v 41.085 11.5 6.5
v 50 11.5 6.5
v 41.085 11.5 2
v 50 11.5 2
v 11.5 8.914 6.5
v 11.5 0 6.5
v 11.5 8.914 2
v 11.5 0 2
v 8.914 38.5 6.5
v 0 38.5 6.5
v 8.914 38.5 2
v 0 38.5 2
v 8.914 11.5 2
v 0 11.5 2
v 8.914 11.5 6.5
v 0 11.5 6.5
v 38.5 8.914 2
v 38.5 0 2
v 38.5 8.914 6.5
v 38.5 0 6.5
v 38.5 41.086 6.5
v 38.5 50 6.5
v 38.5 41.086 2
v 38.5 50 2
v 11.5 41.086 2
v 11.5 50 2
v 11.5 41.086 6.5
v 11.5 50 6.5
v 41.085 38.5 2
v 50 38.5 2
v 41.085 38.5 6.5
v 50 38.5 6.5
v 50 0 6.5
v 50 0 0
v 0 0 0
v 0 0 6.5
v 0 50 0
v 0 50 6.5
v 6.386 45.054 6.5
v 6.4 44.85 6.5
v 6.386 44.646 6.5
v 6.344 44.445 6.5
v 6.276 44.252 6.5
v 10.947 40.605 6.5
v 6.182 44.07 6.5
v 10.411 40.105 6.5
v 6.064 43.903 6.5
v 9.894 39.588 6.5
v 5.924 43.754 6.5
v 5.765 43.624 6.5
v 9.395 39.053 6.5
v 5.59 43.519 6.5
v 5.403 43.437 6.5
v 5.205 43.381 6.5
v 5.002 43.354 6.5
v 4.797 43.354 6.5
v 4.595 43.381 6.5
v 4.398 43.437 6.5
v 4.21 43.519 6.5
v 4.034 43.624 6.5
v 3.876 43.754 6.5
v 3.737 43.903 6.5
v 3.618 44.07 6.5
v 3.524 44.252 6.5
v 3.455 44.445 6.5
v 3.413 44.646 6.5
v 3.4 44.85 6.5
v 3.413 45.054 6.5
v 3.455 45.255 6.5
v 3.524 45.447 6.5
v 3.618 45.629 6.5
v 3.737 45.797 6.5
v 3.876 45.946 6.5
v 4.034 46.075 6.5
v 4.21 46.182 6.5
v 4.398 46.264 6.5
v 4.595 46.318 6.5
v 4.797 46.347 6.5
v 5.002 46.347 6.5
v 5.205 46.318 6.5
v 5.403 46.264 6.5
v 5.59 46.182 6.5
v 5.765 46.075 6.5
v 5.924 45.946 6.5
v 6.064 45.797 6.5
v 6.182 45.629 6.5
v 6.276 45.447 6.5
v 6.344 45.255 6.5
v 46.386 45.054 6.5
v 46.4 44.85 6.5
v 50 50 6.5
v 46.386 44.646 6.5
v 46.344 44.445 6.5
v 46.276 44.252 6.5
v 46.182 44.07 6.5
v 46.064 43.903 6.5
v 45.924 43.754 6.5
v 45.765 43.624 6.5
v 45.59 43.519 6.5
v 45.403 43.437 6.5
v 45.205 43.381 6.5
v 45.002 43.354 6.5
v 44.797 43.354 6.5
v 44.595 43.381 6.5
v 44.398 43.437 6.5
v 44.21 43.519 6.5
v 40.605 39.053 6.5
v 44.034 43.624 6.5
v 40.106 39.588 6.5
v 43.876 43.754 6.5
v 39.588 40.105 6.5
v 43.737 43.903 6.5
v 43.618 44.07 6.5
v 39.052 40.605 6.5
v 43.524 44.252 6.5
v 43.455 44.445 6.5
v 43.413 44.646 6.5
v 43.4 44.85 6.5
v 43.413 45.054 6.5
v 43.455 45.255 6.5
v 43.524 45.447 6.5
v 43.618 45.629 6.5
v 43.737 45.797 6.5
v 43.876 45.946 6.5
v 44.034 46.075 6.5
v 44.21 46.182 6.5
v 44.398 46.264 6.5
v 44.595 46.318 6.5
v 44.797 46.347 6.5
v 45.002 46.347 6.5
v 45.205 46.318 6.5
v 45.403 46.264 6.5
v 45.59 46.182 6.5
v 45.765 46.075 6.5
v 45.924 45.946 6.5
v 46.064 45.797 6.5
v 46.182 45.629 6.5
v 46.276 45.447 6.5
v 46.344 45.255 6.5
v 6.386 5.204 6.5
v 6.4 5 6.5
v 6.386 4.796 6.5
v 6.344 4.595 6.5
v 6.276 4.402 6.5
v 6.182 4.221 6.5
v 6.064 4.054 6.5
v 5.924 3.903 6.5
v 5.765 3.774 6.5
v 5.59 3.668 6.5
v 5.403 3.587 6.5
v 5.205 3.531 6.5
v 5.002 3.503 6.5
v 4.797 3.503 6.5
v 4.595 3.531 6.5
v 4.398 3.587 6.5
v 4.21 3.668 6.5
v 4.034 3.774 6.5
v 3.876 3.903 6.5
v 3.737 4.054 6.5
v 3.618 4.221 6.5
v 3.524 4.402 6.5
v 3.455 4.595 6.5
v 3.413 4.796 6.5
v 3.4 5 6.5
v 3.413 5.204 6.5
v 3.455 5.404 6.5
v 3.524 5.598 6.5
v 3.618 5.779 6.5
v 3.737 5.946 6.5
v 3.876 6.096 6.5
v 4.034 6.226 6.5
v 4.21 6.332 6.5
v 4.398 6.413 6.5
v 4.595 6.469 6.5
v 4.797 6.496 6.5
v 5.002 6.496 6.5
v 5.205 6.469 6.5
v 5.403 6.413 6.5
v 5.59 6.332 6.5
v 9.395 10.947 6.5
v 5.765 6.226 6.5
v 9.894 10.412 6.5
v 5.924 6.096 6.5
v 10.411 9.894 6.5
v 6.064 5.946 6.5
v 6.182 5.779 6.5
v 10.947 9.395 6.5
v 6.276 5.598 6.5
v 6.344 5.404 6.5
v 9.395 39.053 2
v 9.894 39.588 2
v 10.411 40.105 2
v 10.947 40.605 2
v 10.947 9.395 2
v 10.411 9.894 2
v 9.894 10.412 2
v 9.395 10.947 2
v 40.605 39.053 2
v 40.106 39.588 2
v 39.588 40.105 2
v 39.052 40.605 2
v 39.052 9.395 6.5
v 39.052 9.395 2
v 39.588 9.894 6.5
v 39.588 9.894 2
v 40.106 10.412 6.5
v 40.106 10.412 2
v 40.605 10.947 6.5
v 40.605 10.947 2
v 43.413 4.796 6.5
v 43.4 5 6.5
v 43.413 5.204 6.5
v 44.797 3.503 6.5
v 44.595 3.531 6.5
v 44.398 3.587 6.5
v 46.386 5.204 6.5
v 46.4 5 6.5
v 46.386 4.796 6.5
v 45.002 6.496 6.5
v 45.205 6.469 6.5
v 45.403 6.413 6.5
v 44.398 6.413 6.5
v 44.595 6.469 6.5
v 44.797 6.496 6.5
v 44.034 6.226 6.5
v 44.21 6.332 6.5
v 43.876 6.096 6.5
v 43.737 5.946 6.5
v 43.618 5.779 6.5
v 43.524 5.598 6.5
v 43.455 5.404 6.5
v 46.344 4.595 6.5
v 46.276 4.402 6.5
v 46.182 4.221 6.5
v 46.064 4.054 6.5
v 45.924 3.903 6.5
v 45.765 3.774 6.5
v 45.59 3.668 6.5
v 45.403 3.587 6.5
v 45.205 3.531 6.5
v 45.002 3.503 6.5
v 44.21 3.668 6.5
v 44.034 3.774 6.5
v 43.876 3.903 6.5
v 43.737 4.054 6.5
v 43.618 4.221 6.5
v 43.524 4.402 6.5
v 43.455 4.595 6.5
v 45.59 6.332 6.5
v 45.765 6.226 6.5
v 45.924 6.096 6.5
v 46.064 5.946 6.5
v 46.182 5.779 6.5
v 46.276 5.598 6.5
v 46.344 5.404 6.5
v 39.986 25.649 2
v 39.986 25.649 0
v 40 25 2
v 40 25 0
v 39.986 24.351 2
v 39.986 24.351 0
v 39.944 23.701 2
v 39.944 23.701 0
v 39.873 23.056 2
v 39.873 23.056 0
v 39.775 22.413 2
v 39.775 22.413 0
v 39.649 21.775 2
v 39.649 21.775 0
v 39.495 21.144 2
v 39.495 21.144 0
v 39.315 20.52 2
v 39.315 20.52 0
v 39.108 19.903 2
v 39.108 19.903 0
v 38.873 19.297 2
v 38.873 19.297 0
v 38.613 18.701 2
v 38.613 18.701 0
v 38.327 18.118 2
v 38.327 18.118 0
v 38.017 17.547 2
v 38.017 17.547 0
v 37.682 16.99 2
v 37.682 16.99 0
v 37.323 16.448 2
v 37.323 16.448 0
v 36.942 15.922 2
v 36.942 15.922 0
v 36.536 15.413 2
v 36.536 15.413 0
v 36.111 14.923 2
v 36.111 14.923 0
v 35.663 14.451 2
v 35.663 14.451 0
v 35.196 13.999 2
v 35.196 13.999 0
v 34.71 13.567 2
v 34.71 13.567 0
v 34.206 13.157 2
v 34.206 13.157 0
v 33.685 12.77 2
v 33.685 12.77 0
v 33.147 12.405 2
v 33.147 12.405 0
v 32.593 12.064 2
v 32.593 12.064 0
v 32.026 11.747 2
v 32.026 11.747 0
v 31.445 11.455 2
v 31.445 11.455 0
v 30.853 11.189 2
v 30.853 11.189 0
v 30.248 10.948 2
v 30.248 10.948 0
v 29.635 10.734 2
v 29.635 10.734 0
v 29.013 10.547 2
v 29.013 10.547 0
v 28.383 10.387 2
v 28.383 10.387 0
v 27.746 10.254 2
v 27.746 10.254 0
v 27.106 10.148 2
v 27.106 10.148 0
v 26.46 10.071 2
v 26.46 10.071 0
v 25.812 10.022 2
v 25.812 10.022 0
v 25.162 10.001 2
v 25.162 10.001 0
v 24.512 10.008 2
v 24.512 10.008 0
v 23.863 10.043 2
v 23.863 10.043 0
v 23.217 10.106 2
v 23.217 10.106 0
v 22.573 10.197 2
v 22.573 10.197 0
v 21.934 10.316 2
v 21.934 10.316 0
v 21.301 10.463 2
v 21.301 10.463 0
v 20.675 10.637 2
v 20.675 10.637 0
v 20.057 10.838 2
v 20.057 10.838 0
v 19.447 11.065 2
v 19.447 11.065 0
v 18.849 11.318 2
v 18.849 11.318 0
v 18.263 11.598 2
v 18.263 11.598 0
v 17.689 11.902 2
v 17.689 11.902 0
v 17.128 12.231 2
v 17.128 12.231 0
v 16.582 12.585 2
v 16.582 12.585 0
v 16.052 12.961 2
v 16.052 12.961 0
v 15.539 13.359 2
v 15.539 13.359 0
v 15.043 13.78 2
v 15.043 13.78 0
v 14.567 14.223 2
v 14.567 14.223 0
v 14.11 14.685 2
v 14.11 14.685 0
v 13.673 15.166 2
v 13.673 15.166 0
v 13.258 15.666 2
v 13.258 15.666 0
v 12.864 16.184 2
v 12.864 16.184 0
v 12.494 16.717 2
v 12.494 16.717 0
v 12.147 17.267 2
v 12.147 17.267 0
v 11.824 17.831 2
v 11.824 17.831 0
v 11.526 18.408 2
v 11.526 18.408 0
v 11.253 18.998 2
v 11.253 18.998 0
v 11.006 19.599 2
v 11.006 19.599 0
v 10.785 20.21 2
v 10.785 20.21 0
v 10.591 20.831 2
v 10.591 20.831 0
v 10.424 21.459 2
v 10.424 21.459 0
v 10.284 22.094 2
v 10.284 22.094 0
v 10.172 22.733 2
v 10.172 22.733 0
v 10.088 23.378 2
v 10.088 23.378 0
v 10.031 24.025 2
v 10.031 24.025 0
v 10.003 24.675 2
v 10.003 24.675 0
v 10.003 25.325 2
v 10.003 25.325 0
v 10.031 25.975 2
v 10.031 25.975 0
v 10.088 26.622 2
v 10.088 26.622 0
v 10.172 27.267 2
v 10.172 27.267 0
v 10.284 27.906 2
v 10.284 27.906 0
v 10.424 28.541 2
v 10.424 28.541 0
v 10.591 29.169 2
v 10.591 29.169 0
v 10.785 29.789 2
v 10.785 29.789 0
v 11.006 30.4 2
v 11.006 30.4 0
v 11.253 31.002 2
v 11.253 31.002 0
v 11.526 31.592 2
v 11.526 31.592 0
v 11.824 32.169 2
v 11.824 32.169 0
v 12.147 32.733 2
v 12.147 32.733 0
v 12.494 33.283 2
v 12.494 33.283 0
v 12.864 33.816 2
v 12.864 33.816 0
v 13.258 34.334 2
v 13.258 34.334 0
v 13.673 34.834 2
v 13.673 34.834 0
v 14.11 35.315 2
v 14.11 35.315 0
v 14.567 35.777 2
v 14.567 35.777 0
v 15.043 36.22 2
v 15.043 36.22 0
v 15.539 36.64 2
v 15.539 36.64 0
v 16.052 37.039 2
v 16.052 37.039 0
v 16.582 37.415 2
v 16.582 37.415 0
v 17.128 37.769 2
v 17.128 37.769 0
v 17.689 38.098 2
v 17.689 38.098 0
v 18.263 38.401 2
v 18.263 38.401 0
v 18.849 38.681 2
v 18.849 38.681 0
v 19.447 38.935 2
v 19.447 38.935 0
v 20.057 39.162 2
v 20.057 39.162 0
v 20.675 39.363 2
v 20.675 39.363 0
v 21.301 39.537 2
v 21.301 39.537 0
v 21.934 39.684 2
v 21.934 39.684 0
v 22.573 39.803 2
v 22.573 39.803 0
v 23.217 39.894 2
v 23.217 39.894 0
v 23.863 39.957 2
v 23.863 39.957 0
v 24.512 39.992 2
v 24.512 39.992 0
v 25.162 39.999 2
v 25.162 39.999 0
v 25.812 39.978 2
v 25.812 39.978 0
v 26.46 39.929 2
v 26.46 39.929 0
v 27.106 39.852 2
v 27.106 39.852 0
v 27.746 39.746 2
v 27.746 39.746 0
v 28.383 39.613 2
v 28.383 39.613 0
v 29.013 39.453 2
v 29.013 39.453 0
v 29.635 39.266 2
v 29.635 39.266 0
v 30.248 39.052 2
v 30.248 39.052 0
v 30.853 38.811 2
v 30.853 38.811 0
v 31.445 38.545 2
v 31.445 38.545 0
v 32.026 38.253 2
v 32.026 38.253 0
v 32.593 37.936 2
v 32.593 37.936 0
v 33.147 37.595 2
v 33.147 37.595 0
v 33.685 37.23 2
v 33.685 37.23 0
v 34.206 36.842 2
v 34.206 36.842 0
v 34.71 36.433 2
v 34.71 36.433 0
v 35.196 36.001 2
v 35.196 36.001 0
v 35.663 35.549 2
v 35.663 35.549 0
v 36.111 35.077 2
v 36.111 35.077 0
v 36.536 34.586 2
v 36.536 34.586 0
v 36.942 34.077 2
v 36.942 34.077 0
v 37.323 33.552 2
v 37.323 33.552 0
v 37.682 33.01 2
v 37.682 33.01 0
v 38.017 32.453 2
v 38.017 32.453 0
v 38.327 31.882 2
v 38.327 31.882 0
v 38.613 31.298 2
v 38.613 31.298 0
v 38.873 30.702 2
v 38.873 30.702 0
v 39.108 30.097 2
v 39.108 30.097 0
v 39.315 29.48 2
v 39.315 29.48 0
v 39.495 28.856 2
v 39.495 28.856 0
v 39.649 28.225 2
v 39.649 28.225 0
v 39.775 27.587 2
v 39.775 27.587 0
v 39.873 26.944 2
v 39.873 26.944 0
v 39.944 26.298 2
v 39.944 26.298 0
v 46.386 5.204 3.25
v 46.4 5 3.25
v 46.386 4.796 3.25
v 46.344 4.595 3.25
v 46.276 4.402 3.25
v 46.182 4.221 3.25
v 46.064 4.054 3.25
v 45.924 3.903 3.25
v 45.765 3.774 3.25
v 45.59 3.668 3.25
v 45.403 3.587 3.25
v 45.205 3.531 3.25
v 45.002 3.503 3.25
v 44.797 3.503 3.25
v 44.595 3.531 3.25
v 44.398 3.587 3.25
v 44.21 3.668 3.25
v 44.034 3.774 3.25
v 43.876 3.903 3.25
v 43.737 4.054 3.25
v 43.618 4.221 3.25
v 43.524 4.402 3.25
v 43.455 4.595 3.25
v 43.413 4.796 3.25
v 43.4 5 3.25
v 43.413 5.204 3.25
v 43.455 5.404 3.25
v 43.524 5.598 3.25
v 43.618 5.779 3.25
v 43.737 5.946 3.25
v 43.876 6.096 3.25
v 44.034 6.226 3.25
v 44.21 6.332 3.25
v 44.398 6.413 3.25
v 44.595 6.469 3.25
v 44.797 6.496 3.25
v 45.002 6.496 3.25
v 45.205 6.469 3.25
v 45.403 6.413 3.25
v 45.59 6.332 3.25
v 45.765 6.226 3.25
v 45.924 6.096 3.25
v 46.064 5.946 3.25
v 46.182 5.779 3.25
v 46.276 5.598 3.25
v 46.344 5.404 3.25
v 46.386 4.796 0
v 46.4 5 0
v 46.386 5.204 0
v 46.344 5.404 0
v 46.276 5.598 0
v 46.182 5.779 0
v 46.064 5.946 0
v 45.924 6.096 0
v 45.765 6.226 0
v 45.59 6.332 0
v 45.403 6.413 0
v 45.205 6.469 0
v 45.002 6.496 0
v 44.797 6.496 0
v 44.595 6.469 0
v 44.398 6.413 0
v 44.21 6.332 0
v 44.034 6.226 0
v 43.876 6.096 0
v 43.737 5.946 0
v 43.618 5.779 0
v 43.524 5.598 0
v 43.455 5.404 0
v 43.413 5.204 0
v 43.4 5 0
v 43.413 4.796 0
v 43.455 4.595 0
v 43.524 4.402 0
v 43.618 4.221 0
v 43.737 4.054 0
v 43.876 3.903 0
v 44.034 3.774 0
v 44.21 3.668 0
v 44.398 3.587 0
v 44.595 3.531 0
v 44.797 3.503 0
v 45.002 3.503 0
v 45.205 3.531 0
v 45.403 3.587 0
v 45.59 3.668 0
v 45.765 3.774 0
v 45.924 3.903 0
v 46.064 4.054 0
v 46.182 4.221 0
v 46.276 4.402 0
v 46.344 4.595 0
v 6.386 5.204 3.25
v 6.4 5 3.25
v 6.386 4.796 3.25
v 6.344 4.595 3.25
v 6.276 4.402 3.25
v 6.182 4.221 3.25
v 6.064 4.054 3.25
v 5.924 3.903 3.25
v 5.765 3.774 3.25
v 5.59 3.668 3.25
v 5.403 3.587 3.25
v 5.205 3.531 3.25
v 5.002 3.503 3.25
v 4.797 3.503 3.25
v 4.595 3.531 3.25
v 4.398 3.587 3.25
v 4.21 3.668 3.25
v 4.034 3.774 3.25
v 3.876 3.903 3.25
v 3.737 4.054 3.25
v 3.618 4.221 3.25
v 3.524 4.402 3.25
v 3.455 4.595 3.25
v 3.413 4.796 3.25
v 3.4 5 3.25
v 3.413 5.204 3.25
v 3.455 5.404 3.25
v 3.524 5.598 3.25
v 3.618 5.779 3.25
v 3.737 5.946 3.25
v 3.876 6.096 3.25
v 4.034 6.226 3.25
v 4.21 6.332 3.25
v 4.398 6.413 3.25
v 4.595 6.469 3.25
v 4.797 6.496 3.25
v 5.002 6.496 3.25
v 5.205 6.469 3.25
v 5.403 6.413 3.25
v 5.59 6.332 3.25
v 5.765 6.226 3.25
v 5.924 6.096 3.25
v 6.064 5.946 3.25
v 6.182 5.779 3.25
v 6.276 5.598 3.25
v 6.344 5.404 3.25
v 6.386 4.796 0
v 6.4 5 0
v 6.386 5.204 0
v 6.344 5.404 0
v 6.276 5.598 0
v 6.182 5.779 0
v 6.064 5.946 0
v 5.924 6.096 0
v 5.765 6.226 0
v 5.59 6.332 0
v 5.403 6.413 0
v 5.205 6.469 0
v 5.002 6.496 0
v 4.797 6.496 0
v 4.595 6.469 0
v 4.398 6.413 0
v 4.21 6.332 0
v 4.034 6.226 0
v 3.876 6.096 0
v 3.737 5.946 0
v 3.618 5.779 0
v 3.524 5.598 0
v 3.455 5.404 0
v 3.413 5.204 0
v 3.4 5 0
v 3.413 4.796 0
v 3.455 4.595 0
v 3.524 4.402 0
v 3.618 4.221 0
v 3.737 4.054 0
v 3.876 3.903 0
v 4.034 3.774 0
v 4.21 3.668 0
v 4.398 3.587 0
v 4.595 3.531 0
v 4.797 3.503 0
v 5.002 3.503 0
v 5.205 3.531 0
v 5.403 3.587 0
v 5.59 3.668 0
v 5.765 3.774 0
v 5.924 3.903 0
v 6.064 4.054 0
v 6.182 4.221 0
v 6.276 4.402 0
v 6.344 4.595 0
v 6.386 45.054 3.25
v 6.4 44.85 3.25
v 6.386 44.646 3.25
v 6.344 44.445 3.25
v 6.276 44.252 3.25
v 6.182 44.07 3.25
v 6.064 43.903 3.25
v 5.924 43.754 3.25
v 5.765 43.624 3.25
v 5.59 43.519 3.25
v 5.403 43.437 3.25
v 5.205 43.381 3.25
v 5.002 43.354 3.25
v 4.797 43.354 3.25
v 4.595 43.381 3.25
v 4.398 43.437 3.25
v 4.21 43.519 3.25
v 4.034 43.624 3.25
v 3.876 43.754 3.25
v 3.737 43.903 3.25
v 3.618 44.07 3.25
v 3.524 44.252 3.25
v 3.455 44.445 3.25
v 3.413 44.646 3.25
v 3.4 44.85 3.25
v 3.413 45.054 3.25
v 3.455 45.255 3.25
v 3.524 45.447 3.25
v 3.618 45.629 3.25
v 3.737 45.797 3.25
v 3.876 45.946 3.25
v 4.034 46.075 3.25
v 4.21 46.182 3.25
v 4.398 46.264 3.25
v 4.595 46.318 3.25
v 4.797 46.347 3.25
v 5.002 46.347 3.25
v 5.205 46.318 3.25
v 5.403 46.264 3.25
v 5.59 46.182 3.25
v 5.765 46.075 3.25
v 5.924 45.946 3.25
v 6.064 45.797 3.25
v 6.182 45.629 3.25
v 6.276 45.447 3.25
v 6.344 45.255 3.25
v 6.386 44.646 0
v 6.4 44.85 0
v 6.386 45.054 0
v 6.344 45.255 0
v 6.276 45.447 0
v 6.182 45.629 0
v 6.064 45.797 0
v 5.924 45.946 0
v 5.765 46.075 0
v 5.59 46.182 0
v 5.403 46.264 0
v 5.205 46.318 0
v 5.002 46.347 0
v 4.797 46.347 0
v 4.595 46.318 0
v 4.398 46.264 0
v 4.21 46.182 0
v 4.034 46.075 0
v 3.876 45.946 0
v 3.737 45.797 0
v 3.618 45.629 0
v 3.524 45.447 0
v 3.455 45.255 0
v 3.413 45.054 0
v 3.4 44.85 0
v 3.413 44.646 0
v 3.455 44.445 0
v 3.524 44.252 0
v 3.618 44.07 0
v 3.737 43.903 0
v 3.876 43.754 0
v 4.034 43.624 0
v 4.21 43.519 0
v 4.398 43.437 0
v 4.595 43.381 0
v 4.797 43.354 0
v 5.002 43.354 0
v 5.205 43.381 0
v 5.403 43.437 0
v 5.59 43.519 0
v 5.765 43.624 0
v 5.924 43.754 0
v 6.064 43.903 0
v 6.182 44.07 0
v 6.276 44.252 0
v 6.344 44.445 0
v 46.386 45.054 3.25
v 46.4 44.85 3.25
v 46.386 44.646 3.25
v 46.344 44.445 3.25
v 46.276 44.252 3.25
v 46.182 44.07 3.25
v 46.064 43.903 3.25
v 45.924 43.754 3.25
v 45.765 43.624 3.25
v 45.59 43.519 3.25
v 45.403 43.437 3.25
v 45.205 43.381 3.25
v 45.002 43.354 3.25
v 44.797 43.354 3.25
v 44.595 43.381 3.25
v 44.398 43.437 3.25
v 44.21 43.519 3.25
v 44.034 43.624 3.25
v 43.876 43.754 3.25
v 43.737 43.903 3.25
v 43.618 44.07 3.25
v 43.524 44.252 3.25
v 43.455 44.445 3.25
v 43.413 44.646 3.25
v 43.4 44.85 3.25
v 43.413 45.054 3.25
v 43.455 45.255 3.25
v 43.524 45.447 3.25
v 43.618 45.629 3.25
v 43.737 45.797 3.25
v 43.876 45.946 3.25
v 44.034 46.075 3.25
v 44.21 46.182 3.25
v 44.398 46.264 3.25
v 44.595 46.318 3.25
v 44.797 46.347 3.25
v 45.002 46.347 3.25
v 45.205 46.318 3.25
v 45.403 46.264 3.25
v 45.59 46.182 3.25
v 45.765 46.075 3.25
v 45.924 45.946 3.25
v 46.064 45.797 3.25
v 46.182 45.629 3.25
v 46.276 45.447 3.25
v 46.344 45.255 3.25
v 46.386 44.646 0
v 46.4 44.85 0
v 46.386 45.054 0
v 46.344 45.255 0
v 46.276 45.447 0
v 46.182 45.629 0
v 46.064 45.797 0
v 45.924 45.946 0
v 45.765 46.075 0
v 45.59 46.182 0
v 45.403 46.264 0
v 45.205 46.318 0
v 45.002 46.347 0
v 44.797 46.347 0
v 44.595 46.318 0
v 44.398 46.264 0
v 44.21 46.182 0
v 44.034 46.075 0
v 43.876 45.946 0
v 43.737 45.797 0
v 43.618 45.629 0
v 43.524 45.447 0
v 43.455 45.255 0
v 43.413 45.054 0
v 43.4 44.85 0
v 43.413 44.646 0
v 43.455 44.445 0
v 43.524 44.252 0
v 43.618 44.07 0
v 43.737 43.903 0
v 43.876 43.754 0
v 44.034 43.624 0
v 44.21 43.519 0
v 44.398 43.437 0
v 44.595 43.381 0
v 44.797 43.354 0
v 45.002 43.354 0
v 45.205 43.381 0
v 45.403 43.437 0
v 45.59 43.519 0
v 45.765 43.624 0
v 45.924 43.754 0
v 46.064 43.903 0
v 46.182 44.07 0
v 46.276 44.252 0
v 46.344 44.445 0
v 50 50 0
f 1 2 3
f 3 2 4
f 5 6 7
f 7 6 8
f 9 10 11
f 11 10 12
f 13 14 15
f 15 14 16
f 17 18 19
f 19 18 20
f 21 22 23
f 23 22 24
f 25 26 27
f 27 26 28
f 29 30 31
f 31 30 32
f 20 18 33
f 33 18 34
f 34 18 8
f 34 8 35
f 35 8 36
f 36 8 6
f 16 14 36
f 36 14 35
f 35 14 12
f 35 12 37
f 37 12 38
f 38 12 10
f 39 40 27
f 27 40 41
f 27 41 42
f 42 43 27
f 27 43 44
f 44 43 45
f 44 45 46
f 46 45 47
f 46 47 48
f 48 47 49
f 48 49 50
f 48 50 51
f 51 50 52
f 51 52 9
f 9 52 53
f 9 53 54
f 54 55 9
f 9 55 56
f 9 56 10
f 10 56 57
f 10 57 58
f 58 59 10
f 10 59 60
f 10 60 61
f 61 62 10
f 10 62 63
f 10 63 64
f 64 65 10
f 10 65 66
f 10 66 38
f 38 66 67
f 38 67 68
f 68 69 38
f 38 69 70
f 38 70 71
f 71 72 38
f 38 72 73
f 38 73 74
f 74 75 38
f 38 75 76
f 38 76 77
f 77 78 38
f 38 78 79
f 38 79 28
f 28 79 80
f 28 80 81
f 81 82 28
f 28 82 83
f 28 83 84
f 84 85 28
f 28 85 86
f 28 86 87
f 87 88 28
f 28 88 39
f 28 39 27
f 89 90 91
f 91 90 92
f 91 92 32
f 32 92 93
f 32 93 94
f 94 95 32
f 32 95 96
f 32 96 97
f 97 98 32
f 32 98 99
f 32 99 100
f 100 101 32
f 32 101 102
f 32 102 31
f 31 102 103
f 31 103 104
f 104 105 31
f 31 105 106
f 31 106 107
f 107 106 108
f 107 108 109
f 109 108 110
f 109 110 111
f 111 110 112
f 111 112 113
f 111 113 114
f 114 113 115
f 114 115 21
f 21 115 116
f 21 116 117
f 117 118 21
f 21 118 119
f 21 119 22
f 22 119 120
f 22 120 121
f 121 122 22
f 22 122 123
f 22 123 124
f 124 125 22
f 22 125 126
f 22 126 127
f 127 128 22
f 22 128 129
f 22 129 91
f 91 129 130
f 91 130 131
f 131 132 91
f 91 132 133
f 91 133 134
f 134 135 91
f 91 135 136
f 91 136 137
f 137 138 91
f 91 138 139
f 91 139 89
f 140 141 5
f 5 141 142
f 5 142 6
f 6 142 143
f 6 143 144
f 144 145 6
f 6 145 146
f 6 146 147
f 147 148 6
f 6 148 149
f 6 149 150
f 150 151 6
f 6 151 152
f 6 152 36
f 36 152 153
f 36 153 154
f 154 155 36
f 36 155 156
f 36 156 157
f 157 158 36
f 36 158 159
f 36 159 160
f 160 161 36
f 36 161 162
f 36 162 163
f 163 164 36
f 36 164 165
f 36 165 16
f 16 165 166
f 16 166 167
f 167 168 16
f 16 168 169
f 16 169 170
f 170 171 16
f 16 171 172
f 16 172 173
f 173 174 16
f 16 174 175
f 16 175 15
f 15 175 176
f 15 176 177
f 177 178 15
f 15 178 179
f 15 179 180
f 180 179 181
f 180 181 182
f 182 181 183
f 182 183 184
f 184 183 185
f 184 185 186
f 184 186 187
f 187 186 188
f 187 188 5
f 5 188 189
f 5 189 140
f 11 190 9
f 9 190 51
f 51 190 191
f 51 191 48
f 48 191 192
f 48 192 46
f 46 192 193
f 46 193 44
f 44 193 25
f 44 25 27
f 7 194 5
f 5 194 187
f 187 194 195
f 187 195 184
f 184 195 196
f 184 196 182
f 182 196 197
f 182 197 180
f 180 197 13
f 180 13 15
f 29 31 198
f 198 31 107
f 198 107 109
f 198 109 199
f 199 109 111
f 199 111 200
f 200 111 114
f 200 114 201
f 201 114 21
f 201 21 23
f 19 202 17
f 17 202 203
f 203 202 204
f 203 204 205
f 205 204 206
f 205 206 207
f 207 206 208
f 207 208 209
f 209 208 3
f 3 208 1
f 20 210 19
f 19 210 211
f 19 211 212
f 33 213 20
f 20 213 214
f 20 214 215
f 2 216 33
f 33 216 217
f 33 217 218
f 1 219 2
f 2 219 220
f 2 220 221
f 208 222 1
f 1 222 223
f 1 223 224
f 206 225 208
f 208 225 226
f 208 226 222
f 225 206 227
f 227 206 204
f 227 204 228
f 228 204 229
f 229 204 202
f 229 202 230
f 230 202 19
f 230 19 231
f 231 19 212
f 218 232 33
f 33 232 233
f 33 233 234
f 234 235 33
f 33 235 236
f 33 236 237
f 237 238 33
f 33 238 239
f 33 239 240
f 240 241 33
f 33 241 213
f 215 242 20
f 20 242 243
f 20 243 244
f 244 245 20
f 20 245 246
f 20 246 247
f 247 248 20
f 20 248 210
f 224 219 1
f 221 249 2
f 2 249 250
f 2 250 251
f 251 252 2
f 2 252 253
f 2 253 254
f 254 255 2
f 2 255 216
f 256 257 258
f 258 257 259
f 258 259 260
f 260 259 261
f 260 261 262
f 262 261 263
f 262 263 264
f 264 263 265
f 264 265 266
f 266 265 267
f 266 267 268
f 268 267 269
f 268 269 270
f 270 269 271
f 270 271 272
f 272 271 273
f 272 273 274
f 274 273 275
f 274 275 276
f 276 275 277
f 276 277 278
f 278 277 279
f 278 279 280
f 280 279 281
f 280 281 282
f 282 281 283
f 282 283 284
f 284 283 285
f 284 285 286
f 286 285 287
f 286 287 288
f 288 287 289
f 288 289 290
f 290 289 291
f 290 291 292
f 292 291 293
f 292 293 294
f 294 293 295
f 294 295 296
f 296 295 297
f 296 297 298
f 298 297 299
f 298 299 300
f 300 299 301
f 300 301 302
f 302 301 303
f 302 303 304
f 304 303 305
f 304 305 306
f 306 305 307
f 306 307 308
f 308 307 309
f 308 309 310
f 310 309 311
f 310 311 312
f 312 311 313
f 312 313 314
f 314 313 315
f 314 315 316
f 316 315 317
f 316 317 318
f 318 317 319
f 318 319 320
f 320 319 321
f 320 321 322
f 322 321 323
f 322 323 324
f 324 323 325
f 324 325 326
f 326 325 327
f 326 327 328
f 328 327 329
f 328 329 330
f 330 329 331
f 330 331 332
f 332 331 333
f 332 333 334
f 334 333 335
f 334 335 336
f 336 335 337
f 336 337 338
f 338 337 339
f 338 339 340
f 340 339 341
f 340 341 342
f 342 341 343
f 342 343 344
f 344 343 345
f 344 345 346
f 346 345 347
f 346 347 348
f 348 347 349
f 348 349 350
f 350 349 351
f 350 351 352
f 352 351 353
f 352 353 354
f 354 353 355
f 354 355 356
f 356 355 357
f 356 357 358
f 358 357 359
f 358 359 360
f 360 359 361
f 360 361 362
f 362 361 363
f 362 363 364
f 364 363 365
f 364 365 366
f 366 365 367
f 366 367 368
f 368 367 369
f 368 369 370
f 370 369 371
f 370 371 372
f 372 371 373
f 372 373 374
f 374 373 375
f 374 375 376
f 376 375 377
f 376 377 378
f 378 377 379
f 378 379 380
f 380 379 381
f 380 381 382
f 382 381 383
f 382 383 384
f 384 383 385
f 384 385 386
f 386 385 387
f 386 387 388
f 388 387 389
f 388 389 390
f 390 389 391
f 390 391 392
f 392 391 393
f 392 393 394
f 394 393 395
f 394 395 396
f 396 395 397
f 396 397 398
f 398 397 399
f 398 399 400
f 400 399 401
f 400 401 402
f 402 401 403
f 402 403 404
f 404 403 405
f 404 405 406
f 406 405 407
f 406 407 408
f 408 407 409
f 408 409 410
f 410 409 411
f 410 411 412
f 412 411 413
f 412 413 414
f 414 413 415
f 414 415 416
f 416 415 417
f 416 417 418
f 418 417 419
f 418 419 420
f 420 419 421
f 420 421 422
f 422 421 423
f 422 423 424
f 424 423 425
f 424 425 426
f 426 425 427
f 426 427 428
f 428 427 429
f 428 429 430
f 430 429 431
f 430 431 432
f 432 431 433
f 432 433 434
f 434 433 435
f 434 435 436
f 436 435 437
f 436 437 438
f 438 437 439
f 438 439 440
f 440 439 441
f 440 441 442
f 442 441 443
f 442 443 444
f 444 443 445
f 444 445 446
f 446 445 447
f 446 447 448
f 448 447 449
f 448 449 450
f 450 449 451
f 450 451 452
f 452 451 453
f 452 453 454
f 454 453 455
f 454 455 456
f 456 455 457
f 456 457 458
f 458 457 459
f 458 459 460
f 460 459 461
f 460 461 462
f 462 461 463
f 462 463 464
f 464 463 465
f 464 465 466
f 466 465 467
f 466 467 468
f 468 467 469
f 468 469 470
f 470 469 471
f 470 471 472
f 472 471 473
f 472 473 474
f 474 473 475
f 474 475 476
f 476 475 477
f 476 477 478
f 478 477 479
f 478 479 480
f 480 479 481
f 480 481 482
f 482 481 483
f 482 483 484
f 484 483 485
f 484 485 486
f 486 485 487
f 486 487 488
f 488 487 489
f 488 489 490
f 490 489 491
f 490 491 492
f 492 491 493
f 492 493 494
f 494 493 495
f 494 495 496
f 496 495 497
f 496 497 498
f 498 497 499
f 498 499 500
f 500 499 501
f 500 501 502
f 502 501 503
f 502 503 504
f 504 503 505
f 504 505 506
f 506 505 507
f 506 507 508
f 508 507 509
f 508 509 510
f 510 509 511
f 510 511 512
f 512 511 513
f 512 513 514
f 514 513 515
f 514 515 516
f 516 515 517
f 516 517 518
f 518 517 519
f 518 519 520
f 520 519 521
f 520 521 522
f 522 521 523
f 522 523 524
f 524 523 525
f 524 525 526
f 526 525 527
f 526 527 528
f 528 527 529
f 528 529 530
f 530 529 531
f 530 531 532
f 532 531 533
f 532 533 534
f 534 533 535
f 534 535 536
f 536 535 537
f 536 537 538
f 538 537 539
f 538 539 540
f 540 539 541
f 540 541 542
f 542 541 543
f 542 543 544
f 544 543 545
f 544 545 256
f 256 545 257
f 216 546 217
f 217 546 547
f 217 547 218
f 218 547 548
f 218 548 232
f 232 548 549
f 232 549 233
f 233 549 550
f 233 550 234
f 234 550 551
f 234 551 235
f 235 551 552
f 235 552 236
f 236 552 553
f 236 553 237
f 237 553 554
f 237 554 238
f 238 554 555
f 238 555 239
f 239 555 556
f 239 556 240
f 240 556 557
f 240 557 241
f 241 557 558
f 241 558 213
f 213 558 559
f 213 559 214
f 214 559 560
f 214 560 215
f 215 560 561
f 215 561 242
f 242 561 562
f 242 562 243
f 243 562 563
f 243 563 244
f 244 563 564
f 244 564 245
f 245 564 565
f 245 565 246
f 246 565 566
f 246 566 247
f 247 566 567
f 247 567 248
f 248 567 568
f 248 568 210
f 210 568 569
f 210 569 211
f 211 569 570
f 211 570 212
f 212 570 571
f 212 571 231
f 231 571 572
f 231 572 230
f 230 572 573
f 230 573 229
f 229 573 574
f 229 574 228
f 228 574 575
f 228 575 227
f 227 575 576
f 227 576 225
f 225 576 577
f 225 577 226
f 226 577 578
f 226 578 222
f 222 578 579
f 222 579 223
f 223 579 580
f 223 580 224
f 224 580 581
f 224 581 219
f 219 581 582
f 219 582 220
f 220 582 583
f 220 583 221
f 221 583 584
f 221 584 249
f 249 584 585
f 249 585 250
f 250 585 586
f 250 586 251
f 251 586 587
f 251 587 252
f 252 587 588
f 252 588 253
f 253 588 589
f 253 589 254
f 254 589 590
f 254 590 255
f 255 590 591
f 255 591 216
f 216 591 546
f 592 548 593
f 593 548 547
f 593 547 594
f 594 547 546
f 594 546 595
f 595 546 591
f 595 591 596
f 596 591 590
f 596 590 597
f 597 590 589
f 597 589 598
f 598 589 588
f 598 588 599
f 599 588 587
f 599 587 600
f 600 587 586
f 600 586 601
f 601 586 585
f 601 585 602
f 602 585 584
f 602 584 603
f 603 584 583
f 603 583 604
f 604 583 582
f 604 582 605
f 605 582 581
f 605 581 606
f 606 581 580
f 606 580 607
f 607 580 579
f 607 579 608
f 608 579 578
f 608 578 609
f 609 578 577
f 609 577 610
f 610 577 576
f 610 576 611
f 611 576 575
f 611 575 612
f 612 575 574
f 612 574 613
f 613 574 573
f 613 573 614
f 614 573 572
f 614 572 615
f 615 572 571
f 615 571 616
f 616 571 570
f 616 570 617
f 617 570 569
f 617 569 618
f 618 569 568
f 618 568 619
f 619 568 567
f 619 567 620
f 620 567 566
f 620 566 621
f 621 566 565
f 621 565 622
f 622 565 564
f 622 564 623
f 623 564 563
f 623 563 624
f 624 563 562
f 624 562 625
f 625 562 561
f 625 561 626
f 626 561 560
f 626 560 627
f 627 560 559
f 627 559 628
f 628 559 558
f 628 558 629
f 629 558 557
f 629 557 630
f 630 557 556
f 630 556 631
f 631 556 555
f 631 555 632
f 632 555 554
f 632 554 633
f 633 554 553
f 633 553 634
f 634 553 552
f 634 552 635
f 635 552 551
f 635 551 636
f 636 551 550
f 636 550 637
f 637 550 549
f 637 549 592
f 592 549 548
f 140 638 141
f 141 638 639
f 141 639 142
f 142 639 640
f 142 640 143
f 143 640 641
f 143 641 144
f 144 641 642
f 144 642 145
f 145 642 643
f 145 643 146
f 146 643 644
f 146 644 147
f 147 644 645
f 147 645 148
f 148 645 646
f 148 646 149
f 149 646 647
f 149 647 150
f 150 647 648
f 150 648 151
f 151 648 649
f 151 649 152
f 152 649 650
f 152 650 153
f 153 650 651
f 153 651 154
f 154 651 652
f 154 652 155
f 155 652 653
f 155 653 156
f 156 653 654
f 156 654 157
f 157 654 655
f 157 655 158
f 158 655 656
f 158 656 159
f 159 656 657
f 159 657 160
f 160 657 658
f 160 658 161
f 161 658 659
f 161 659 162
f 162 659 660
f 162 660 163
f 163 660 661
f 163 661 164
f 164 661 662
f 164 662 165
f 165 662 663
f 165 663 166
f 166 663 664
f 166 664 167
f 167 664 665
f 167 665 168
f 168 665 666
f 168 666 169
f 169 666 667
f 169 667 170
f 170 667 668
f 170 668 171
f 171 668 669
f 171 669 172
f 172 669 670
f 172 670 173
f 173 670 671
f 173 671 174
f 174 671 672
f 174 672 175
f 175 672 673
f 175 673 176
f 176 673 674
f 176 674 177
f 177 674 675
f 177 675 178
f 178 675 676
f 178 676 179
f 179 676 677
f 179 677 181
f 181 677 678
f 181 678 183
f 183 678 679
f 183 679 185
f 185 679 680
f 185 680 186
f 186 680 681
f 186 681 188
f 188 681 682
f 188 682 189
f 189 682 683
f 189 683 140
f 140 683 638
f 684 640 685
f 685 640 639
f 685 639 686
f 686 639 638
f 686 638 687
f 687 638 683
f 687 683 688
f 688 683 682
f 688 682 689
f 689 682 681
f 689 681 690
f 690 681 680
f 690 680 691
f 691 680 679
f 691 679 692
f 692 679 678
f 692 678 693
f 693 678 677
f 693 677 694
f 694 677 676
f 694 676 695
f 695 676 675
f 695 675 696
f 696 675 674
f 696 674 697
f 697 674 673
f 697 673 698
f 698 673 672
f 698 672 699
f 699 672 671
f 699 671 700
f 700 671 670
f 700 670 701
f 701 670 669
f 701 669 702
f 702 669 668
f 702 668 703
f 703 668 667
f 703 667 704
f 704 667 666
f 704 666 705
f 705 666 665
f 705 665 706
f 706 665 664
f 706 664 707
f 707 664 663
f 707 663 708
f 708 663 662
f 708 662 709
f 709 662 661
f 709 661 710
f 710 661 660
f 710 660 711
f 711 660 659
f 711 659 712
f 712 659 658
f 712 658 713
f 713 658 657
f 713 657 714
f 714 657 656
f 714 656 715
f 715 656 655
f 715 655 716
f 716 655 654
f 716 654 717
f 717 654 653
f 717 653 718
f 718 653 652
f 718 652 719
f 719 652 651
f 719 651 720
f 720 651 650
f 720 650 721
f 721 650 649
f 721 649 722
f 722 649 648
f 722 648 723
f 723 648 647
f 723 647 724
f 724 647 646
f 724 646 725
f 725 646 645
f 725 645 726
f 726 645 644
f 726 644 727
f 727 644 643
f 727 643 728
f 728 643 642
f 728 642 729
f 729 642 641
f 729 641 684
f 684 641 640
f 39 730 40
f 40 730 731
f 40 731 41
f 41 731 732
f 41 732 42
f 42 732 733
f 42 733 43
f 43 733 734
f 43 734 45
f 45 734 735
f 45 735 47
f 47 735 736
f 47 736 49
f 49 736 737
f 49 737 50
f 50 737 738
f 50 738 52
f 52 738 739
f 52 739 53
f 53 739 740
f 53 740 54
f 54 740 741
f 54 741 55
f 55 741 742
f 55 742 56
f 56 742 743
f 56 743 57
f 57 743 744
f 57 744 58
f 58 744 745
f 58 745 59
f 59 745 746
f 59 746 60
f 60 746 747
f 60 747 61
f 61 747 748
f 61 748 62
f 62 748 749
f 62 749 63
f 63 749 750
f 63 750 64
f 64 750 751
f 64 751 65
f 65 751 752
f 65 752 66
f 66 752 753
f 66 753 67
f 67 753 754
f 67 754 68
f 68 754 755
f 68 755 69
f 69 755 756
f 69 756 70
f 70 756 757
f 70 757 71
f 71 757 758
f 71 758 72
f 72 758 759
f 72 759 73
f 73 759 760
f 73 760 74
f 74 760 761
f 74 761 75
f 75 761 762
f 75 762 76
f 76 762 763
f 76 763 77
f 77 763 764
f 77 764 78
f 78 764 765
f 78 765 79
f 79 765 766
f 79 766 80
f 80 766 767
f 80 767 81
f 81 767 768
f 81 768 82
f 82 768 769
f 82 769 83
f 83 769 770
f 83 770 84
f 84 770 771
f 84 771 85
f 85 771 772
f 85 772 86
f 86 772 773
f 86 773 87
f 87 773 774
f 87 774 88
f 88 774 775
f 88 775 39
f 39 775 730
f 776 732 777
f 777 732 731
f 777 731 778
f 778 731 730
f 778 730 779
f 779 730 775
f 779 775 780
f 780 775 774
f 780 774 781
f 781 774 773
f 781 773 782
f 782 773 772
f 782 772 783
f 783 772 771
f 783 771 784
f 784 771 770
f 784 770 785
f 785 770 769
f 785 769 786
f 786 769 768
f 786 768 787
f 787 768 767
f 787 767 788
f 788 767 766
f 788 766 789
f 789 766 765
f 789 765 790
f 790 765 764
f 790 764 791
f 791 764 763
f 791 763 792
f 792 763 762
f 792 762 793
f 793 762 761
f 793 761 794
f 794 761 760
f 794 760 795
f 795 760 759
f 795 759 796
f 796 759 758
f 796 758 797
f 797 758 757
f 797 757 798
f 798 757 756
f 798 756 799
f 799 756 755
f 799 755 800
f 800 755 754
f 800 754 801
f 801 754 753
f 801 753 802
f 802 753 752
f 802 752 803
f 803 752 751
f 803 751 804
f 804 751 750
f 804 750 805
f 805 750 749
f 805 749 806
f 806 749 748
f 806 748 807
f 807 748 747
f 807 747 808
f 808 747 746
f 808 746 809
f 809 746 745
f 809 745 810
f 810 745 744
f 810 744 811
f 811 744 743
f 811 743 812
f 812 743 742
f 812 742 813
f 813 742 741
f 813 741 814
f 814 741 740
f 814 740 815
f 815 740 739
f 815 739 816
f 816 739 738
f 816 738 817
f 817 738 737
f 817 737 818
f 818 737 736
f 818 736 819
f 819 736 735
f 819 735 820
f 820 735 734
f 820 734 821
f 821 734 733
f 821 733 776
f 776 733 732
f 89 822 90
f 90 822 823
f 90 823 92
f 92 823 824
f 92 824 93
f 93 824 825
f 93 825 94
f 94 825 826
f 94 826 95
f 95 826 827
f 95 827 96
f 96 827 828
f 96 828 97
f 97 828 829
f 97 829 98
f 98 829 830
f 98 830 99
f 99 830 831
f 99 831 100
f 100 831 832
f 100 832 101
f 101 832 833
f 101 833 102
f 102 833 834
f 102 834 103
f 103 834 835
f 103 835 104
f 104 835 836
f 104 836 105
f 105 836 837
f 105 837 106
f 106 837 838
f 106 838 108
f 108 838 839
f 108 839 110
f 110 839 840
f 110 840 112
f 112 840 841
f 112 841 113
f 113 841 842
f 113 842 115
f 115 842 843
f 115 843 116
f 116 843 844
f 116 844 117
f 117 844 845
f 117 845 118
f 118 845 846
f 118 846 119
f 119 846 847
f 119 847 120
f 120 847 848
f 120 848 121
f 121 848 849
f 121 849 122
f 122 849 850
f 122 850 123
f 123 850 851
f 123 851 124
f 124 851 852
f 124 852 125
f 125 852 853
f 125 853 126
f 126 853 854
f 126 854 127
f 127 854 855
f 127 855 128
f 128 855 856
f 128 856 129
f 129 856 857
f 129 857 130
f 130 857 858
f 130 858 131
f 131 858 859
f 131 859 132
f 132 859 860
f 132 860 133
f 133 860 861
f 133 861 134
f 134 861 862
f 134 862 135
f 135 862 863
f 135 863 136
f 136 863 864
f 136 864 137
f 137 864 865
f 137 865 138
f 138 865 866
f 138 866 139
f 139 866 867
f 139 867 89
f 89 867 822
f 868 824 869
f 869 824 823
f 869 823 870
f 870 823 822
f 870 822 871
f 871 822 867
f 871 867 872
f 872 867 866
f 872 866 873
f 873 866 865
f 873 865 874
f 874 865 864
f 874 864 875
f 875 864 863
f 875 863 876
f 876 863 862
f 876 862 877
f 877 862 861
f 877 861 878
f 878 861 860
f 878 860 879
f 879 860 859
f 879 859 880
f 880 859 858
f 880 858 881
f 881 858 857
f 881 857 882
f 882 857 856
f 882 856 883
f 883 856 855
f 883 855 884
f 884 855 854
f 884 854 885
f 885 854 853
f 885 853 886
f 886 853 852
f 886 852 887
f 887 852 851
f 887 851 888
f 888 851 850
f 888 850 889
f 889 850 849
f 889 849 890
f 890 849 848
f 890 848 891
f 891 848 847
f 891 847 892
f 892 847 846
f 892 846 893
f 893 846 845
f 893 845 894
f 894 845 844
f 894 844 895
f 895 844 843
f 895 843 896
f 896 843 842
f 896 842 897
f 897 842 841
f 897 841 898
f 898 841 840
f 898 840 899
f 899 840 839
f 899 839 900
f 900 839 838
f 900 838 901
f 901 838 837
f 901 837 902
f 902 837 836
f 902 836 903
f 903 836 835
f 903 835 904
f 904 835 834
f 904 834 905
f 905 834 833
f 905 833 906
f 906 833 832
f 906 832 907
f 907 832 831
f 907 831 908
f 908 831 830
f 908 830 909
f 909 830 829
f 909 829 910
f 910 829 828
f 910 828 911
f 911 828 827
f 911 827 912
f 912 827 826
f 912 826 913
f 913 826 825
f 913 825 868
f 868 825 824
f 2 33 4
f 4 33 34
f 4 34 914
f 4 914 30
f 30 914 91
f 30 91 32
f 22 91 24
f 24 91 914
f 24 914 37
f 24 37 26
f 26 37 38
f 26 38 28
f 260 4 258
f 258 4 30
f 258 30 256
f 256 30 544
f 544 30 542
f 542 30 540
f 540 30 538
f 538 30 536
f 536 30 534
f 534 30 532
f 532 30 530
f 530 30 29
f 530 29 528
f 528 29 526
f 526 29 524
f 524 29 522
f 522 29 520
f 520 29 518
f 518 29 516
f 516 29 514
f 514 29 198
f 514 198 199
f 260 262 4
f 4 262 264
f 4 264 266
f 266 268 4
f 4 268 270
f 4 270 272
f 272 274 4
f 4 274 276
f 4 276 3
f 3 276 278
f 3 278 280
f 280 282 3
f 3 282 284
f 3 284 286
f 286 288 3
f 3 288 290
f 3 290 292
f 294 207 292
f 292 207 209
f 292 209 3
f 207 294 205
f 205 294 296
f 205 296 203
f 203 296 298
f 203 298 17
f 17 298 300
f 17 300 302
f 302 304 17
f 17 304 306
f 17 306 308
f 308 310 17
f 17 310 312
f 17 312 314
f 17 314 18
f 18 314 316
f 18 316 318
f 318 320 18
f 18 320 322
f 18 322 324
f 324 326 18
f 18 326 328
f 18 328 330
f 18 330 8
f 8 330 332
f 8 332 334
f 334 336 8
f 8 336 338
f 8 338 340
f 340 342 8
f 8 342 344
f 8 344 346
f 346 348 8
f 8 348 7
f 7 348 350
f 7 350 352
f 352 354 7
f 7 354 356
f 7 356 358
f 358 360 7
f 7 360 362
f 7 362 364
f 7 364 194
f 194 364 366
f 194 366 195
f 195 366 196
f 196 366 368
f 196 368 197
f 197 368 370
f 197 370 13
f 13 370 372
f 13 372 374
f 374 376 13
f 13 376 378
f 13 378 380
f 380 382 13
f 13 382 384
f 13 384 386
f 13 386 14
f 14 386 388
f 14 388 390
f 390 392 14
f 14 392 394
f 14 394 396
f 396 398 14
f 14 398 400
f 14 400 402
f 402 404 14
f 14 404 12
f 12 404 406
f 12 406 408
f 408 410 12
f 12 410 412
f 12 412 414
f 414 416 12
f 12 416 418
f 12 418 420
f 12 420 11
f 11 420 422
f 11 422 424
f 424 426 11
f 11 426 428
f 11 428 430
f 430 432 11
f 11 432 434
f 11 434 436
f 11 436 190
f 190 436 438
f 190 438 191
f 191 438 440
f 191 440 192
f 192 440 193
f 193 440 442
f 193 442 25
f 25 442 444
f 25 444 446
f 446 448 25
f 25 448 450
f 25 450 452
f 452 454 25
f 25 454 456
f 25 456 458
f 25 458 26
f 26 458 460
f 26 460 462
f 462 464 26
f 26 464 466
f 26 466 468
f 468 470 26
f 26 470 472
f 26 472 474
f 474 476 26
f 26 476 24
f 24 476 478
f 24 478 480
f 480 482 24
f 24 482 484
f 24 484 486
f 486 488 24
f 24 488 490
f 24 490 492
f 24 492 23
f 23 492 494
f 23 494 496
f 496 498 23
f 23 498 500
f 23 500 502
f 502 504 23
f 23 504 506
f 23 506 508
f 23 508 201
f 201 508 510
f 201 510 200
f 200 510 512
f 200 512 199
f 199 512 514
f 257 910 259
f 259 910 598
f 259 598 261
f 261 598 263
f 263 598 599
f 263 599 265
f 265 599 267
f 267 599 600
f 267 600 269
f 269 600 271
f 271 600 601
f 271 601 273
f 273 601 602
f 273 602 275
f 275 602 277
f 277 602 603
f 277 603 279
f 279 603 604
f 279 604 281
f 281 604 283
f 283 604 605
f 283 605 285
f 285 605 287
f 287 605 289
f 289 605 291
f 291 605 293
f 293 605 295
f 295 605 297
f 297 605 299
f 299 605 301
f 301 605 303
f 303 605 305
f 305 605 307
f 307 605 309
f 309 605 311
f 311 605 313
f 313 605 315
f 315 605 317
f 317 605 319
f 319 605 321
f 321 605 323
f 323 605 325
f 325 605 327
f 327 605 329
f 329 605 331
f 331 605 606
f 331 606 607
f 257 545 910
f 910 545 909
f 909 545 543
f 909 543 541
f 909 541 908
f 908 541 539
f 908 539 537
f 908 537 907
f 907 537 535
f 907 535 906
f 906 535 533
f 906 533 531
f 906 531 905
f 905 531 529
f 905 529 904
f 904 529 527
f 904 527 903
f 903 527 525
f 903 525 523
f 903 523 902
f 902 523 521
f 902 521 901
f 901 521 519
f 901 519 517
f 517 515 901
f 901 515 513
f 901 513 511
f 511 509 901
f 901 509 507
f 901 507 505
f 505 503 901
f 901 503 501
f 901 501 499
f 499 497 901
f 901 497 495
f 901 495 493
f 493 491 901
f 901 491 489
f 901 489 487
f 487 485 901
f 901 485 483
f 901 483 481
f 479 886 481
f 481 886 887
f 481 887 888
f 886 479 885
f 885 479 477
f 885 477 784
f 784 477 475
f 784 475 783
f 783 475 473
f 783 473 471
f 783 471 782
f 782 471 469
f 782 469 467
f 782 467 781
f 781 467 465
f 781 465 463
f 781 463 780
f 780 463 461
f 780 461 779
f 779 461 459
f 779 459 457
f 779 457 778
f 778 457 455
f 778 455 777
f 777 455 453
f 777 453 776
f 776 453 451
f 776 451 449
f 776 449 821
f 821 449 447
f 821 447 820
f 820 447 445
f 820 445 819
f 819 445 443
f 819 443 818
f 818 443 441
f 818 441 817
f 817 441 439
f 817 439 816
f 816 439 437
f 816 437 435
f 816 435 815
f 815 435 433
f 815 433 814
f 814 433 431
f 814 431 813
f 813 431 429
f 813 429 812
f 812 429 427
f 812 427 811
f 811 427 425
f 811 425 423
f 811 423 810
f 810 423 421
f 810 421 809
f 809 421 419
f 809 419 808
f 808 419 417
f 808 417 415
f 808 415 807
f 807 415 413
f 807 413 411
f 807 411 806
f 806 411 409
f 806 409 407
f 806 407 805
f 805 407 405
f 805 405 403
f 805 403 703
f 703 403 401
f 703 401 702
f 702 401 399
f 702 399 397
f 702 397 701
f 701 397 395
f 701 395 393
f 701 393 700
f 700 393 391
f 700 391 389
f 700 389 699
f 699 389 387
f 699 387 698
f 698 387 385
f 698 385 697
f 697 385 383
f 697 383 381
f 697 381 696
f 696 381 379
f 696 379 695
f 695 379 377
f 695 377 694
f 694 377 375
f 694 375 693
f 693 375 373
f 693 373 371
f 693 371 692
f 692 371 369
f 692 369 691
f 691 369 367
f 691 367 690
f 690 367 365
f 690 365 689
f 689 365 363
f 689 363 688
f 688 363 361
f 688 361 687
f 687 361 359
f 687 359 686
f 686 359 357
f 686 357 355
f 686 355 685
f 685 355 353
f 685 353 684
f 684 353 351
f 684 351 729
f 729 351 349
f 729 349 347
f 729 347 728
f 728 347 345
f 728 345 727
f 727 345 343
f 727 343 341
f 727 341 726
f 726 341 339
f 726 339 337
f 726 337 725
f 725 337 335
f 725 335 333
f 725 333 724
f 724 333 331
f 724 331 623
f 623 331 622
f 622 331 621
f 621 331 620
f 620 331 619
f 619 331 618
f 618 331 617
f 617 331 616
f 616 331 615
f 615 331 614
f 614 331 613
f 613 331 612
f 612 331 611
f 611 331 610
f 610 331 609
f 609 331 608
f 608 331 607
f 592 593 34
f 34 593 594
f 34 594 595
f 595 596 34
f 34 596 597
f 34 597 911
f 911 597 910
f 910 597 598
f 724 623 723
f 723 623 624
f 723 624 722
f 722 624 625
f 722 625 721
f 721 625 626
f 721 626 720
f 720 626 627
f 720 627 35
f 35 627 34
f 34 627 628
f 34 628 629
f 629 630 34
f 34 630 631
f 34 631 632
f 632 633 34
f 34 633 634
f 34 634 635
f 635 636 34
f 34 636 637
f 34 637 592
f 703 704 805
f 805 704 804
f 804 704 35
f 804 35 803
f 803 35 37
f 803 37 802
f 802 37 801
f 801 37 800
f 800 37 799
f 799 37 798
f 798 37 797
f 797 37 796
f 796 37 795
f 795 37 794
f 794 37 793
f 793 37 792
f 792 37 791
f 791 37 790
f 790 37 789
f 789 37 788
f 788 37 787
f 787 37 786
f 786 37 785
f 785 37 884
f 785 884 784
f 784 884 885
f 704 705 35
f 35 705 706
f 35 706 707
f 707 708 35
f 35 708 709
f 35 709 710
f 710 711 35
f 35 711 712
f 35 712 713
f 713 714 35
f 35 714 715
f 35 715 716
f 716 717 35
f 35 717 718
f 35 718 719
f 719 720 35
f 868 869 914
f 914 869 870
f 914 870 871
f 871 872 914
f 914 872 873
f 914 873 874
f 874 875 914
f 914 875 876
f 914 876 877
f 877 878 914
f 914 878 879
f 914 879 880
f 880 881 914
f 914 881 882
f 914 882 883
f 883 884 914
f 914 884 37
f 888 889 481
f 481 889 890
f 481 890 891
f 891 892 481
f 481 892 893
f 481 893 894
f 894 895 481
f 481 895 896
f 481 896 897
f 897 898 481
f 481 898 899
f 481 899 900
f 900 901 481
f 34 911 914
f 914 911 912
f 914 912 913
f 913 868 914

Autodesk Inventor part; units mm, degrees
ref_plane "YZ Plane" through (0, 0, 0) normal (1, 0, 0) x (0, 1, 0)
ref_plane "XZ Plane" through (0, 0, 0) normal (0, 1, 0) x (-1, 0, 0)
ref_plane "XY Plane" through (0, 0, 0) normal (0, 0, 1) x (1, 0, 0)
ref_plane "Work Plane1" through (0, 0, 0) normal (0, 0, 1) x (1, 0, 0)
sketch "Sketch1" plane through (0, 0, 0) normal (0, 0, 1) x (1, 0, 0)
  circle A0 centre (44.9, 44.85) radius 3.1 construction
  arc A1 (2, 43.7546) -> (2, 45.9454) centre (4.9, 44.85) ccw construction
  line L0 (2, 39.7) -> (2, 43.7546) construction
  line L1 (97.8, 39.7) -> (2, 39.7) construction
  line L2 (97.8, 43.9046) -> (97.8, 39.7) construction
  arc A2 (94.119, 48) -> (97.8, 43.9046) centre (94.9, 45) ccw construction
  line L3 (55.681, 48) -> (94.119, 48) construction
  arc A3 (54.119, 48) -> (55.681, 48) centre (54.9, 45) ccw construction
  line L4 (29.1188, 48) -> (54.119, 48) construction
  line L5 (2, 45.9454) -> (2, 48) construction
  arc A4 (4.9, 2) -> (2, 5.7681) centre (4.9, 5) ccw construction
  line L6 (44.9, 2) -> (4.9, 2) construction
  circle A5 centre (44.9, 5) radius 3 construction
  line L7 (54.9, 2) -> (44.9, 2) construction
  circle A6 centre (54.9, 5) radius 3 construction
  line L8 (94.9, 2) -> (54.9, 2) construction
  arc A7 (97.8, 5.7681) -> (94.9, 2) centre (94.9, 5) ccw construction
  line L9 (97.8, 39.7) -> (97.8, 5.7681) construction
  line L10 (91.397, 39.7) -> (97.8, 39.7) construction
  line L11 (91.397, 10.3) -> (91.397, 39.7) construction
  line L12 (8.403, 10.3) -> (91.397, 10.3) construction
  line L13 (8.403, 10.3) -> (8.403, 39.7) construction
  line L14 (2, 39.7) -> (8.403, 39.7) construction
  line L15 (2, 5.7681) -> (2, 39.7) construction
  arc A8 (99.8, 48) -> (97.8, 50) centre (97.8, 48) ccw construction
  arc A9 (97.8, 0) -> (99.8, 2) centre (97.8, 2) ccw construction
  arc A10 (2, 50) -> (0, 48) centre (2, 48) ccw construction
  arc A11 (0, 2) -> (2, 0) centre (2, 2) ccw construction
  line L16 (0, 50) -> (99.8, 50)
  line L17 (99.8, 50) -> (99.8, 0)
  line L18 (99.8, 0) -> (0, 0)
  line L19 (0, 0) -> (0, 50)
  circle A12 centre (94.9, 45) radius 1.6 construction
  arc A13 (93.935, 3.8516) -> (95.865, 3.8516) centre (94.9, 5) ccw construction
  circle A14 centre (54.9, 5) radius 1.5 construction
  circle A15 centre (54.9, 45) radius 1.6 construction
  circle A16 centre (44.9, 44.85) radius 1.6 construction
  circle A17 centre (44.9, 5) radius 1.5 construction
  circle A18 centre (4.9, 44.85) radius 1.6 construction
  circle A19 centre (4.9, 5) radius 1.5 construction
  line L20 (0, 50) -> (50, 50) construction
  line L21 (50, 50) -> (50, 0) construction
  line L22 (50, 0) -> (0, 0) construction
  line L23 (0, 0) -> (0, 50) construction
  line L24 (50, 50) -> (0, 50)
  line L25 (0, 50) -> (0, 0)
  line L26 (0, 0) -> (50, 0)
  line L27 (50, 0) -> (50, 50)
  circle A20 centre (25, 25) radius 15
  circle A21 centre (44.9, 44.85) radius 1.5
  circle A22 centre (4.9, 44.85) radius 1.5
  circle A23 centre (4.9, 5) radius 1.5
  circle A24 centre (44.9, 5) radius 1.5
  line L28 (29.1188, 48) -> (29.1188, 47.25) projected
  line L29 (29.1188, 47.25) -> (20.2352, 47.25) projected
  line L30 (20.2352, 47.25) -> (20.2352, 48) projected
  line L31 (2, 48) -> (20.2352, 48) projected
  point P0 (0, 0)
  dimension "d0" = 50
  dimension "d1" = 50
  dimension "d2" = 30
  dimension "d3" = 3
  dimension "d4" = 3
  dimension "d5" = 3
  dimension "d6" = 3
extrude "Extrusion1" add sketch "Sketch1" along normal blind 2 contours L16 L27 L18 L19
sketch "Sketch2" plane through (0, 0, 2) normal (0, 0, 1) x (1, 0, 0)
  circle A0 centre (25, 25) radius 15 projected
  circle A1 centre (44.9, 5) radius 1.5 projected
  circle A2 centre (4.9, 5) radius 1.5 projected
  circle A3 centre (4.9, 44.85) radius 1.5 projected
  circle A4 centre (44.9, 44.85) radius 1.5 projected
  line L0 (50, 50) -> (0, 50) projected
  line L1 (0, 50) -> (0, 0) projected
  line L2 (0, 0) -> (50, 0) projected
  line L3 (50, 0) -> (50, 50) projected
  circle A5 centre (25, 25) radius 15 projected
  circle A6 centre (25, 25) radius 21
  point P0 (0, 0)
  dimension "d9" = 42
extrude "Extrusion2" add sketch "Sketch2" along normal blind 4.5 contours L3 L2 L1 L0
sketch "Sketch3" plane through (0, 0, 6.5) normal (0, 0, 1) x (1, 0, 0)
  point P0 (0, 0)
sketch "Sketch4" plane through (0, 0, 6.5) normal (0, 0, 1) x (1, 0, 0)
  arc A0 (5.5835, 17) -> (44.4165, 17) centre (25, 25) ccw construction
  line L0 (0.75, 17) -> (5.5835, 17) construction
  line L1 (0.75, 17) -> (0.75, 33) construction
  line L2 (5.5835, 33) -> (0.75, 33) construction
  arc A1 (44.4165, 33) -> (5.5835, 33) centre (25, 25) ccw construction
  line L3 (49.25, 33) -> (44.4165, 33) construction
  line L4 (49.25, 33) -> (49.25, 17) construction
  line L5 (44.4165, 17) -> (49.25, 17) construction
  line L6 (0, 0) -> (50, 0) projected
  line L7 (38.5, 50) -> (11.5, 50)
  line L8 (11.5, 50) -> (11.5, 0)
  line L9 (11.5, 0) -> (38.5, 0)
  line L10 (38.5, 0) -> (38.5, 50)
  line L11 (38.5, 50) -> (11.5, 0) construction
  line L12 (11.5, 50) -> (38.5, 0) construction
  line L13 (0, 50) -> (0, 0) projected
  line L14 (50, 38.5) -> (0, 38.5)
  line L15 (0, 38.5) -> (0, 11.5)
  line L16 (0, 11.5) -> (50, 11.5)
  line L17 (50, 11.5) -> (50, 38.5)
  line L18 (50, 38.5) -> (0, 11.5) construction
  line L19 (0, 38.5) -> (50, 11.5) construction
  circle A2 centre (4.9, 45) radius 0.6526 projected
  circle A3 centre (44.9, 45) radius 0.6526 projected
  circle A4 centre (4.9, 5) radius 0.6526 projected
  circle A5 centre (44.9, 5) radius 0.6526 projected
  line L20 (0, 0) -> (50, 0) projected
  line L21 (50, 0) -> (50, 50) projected
  line L22 (50, 50) -> (0, 50) projected
  line L23 (0, 50) -> (0, 0) projected
  dimension "d12" = 27
  dimension "d13" = 27
extrude "Extrusion3" cut sketch "Sketch4" against normal up to surface (4.5 mm away) contours L8 L16 L10 L6 | L13 L14 L8 L16 | L8 L14 L10 L16 | L10 L14 L17 L16 | L8 L7 L10 L14
properties part number "30_Z_Stage_Adapterplate"
